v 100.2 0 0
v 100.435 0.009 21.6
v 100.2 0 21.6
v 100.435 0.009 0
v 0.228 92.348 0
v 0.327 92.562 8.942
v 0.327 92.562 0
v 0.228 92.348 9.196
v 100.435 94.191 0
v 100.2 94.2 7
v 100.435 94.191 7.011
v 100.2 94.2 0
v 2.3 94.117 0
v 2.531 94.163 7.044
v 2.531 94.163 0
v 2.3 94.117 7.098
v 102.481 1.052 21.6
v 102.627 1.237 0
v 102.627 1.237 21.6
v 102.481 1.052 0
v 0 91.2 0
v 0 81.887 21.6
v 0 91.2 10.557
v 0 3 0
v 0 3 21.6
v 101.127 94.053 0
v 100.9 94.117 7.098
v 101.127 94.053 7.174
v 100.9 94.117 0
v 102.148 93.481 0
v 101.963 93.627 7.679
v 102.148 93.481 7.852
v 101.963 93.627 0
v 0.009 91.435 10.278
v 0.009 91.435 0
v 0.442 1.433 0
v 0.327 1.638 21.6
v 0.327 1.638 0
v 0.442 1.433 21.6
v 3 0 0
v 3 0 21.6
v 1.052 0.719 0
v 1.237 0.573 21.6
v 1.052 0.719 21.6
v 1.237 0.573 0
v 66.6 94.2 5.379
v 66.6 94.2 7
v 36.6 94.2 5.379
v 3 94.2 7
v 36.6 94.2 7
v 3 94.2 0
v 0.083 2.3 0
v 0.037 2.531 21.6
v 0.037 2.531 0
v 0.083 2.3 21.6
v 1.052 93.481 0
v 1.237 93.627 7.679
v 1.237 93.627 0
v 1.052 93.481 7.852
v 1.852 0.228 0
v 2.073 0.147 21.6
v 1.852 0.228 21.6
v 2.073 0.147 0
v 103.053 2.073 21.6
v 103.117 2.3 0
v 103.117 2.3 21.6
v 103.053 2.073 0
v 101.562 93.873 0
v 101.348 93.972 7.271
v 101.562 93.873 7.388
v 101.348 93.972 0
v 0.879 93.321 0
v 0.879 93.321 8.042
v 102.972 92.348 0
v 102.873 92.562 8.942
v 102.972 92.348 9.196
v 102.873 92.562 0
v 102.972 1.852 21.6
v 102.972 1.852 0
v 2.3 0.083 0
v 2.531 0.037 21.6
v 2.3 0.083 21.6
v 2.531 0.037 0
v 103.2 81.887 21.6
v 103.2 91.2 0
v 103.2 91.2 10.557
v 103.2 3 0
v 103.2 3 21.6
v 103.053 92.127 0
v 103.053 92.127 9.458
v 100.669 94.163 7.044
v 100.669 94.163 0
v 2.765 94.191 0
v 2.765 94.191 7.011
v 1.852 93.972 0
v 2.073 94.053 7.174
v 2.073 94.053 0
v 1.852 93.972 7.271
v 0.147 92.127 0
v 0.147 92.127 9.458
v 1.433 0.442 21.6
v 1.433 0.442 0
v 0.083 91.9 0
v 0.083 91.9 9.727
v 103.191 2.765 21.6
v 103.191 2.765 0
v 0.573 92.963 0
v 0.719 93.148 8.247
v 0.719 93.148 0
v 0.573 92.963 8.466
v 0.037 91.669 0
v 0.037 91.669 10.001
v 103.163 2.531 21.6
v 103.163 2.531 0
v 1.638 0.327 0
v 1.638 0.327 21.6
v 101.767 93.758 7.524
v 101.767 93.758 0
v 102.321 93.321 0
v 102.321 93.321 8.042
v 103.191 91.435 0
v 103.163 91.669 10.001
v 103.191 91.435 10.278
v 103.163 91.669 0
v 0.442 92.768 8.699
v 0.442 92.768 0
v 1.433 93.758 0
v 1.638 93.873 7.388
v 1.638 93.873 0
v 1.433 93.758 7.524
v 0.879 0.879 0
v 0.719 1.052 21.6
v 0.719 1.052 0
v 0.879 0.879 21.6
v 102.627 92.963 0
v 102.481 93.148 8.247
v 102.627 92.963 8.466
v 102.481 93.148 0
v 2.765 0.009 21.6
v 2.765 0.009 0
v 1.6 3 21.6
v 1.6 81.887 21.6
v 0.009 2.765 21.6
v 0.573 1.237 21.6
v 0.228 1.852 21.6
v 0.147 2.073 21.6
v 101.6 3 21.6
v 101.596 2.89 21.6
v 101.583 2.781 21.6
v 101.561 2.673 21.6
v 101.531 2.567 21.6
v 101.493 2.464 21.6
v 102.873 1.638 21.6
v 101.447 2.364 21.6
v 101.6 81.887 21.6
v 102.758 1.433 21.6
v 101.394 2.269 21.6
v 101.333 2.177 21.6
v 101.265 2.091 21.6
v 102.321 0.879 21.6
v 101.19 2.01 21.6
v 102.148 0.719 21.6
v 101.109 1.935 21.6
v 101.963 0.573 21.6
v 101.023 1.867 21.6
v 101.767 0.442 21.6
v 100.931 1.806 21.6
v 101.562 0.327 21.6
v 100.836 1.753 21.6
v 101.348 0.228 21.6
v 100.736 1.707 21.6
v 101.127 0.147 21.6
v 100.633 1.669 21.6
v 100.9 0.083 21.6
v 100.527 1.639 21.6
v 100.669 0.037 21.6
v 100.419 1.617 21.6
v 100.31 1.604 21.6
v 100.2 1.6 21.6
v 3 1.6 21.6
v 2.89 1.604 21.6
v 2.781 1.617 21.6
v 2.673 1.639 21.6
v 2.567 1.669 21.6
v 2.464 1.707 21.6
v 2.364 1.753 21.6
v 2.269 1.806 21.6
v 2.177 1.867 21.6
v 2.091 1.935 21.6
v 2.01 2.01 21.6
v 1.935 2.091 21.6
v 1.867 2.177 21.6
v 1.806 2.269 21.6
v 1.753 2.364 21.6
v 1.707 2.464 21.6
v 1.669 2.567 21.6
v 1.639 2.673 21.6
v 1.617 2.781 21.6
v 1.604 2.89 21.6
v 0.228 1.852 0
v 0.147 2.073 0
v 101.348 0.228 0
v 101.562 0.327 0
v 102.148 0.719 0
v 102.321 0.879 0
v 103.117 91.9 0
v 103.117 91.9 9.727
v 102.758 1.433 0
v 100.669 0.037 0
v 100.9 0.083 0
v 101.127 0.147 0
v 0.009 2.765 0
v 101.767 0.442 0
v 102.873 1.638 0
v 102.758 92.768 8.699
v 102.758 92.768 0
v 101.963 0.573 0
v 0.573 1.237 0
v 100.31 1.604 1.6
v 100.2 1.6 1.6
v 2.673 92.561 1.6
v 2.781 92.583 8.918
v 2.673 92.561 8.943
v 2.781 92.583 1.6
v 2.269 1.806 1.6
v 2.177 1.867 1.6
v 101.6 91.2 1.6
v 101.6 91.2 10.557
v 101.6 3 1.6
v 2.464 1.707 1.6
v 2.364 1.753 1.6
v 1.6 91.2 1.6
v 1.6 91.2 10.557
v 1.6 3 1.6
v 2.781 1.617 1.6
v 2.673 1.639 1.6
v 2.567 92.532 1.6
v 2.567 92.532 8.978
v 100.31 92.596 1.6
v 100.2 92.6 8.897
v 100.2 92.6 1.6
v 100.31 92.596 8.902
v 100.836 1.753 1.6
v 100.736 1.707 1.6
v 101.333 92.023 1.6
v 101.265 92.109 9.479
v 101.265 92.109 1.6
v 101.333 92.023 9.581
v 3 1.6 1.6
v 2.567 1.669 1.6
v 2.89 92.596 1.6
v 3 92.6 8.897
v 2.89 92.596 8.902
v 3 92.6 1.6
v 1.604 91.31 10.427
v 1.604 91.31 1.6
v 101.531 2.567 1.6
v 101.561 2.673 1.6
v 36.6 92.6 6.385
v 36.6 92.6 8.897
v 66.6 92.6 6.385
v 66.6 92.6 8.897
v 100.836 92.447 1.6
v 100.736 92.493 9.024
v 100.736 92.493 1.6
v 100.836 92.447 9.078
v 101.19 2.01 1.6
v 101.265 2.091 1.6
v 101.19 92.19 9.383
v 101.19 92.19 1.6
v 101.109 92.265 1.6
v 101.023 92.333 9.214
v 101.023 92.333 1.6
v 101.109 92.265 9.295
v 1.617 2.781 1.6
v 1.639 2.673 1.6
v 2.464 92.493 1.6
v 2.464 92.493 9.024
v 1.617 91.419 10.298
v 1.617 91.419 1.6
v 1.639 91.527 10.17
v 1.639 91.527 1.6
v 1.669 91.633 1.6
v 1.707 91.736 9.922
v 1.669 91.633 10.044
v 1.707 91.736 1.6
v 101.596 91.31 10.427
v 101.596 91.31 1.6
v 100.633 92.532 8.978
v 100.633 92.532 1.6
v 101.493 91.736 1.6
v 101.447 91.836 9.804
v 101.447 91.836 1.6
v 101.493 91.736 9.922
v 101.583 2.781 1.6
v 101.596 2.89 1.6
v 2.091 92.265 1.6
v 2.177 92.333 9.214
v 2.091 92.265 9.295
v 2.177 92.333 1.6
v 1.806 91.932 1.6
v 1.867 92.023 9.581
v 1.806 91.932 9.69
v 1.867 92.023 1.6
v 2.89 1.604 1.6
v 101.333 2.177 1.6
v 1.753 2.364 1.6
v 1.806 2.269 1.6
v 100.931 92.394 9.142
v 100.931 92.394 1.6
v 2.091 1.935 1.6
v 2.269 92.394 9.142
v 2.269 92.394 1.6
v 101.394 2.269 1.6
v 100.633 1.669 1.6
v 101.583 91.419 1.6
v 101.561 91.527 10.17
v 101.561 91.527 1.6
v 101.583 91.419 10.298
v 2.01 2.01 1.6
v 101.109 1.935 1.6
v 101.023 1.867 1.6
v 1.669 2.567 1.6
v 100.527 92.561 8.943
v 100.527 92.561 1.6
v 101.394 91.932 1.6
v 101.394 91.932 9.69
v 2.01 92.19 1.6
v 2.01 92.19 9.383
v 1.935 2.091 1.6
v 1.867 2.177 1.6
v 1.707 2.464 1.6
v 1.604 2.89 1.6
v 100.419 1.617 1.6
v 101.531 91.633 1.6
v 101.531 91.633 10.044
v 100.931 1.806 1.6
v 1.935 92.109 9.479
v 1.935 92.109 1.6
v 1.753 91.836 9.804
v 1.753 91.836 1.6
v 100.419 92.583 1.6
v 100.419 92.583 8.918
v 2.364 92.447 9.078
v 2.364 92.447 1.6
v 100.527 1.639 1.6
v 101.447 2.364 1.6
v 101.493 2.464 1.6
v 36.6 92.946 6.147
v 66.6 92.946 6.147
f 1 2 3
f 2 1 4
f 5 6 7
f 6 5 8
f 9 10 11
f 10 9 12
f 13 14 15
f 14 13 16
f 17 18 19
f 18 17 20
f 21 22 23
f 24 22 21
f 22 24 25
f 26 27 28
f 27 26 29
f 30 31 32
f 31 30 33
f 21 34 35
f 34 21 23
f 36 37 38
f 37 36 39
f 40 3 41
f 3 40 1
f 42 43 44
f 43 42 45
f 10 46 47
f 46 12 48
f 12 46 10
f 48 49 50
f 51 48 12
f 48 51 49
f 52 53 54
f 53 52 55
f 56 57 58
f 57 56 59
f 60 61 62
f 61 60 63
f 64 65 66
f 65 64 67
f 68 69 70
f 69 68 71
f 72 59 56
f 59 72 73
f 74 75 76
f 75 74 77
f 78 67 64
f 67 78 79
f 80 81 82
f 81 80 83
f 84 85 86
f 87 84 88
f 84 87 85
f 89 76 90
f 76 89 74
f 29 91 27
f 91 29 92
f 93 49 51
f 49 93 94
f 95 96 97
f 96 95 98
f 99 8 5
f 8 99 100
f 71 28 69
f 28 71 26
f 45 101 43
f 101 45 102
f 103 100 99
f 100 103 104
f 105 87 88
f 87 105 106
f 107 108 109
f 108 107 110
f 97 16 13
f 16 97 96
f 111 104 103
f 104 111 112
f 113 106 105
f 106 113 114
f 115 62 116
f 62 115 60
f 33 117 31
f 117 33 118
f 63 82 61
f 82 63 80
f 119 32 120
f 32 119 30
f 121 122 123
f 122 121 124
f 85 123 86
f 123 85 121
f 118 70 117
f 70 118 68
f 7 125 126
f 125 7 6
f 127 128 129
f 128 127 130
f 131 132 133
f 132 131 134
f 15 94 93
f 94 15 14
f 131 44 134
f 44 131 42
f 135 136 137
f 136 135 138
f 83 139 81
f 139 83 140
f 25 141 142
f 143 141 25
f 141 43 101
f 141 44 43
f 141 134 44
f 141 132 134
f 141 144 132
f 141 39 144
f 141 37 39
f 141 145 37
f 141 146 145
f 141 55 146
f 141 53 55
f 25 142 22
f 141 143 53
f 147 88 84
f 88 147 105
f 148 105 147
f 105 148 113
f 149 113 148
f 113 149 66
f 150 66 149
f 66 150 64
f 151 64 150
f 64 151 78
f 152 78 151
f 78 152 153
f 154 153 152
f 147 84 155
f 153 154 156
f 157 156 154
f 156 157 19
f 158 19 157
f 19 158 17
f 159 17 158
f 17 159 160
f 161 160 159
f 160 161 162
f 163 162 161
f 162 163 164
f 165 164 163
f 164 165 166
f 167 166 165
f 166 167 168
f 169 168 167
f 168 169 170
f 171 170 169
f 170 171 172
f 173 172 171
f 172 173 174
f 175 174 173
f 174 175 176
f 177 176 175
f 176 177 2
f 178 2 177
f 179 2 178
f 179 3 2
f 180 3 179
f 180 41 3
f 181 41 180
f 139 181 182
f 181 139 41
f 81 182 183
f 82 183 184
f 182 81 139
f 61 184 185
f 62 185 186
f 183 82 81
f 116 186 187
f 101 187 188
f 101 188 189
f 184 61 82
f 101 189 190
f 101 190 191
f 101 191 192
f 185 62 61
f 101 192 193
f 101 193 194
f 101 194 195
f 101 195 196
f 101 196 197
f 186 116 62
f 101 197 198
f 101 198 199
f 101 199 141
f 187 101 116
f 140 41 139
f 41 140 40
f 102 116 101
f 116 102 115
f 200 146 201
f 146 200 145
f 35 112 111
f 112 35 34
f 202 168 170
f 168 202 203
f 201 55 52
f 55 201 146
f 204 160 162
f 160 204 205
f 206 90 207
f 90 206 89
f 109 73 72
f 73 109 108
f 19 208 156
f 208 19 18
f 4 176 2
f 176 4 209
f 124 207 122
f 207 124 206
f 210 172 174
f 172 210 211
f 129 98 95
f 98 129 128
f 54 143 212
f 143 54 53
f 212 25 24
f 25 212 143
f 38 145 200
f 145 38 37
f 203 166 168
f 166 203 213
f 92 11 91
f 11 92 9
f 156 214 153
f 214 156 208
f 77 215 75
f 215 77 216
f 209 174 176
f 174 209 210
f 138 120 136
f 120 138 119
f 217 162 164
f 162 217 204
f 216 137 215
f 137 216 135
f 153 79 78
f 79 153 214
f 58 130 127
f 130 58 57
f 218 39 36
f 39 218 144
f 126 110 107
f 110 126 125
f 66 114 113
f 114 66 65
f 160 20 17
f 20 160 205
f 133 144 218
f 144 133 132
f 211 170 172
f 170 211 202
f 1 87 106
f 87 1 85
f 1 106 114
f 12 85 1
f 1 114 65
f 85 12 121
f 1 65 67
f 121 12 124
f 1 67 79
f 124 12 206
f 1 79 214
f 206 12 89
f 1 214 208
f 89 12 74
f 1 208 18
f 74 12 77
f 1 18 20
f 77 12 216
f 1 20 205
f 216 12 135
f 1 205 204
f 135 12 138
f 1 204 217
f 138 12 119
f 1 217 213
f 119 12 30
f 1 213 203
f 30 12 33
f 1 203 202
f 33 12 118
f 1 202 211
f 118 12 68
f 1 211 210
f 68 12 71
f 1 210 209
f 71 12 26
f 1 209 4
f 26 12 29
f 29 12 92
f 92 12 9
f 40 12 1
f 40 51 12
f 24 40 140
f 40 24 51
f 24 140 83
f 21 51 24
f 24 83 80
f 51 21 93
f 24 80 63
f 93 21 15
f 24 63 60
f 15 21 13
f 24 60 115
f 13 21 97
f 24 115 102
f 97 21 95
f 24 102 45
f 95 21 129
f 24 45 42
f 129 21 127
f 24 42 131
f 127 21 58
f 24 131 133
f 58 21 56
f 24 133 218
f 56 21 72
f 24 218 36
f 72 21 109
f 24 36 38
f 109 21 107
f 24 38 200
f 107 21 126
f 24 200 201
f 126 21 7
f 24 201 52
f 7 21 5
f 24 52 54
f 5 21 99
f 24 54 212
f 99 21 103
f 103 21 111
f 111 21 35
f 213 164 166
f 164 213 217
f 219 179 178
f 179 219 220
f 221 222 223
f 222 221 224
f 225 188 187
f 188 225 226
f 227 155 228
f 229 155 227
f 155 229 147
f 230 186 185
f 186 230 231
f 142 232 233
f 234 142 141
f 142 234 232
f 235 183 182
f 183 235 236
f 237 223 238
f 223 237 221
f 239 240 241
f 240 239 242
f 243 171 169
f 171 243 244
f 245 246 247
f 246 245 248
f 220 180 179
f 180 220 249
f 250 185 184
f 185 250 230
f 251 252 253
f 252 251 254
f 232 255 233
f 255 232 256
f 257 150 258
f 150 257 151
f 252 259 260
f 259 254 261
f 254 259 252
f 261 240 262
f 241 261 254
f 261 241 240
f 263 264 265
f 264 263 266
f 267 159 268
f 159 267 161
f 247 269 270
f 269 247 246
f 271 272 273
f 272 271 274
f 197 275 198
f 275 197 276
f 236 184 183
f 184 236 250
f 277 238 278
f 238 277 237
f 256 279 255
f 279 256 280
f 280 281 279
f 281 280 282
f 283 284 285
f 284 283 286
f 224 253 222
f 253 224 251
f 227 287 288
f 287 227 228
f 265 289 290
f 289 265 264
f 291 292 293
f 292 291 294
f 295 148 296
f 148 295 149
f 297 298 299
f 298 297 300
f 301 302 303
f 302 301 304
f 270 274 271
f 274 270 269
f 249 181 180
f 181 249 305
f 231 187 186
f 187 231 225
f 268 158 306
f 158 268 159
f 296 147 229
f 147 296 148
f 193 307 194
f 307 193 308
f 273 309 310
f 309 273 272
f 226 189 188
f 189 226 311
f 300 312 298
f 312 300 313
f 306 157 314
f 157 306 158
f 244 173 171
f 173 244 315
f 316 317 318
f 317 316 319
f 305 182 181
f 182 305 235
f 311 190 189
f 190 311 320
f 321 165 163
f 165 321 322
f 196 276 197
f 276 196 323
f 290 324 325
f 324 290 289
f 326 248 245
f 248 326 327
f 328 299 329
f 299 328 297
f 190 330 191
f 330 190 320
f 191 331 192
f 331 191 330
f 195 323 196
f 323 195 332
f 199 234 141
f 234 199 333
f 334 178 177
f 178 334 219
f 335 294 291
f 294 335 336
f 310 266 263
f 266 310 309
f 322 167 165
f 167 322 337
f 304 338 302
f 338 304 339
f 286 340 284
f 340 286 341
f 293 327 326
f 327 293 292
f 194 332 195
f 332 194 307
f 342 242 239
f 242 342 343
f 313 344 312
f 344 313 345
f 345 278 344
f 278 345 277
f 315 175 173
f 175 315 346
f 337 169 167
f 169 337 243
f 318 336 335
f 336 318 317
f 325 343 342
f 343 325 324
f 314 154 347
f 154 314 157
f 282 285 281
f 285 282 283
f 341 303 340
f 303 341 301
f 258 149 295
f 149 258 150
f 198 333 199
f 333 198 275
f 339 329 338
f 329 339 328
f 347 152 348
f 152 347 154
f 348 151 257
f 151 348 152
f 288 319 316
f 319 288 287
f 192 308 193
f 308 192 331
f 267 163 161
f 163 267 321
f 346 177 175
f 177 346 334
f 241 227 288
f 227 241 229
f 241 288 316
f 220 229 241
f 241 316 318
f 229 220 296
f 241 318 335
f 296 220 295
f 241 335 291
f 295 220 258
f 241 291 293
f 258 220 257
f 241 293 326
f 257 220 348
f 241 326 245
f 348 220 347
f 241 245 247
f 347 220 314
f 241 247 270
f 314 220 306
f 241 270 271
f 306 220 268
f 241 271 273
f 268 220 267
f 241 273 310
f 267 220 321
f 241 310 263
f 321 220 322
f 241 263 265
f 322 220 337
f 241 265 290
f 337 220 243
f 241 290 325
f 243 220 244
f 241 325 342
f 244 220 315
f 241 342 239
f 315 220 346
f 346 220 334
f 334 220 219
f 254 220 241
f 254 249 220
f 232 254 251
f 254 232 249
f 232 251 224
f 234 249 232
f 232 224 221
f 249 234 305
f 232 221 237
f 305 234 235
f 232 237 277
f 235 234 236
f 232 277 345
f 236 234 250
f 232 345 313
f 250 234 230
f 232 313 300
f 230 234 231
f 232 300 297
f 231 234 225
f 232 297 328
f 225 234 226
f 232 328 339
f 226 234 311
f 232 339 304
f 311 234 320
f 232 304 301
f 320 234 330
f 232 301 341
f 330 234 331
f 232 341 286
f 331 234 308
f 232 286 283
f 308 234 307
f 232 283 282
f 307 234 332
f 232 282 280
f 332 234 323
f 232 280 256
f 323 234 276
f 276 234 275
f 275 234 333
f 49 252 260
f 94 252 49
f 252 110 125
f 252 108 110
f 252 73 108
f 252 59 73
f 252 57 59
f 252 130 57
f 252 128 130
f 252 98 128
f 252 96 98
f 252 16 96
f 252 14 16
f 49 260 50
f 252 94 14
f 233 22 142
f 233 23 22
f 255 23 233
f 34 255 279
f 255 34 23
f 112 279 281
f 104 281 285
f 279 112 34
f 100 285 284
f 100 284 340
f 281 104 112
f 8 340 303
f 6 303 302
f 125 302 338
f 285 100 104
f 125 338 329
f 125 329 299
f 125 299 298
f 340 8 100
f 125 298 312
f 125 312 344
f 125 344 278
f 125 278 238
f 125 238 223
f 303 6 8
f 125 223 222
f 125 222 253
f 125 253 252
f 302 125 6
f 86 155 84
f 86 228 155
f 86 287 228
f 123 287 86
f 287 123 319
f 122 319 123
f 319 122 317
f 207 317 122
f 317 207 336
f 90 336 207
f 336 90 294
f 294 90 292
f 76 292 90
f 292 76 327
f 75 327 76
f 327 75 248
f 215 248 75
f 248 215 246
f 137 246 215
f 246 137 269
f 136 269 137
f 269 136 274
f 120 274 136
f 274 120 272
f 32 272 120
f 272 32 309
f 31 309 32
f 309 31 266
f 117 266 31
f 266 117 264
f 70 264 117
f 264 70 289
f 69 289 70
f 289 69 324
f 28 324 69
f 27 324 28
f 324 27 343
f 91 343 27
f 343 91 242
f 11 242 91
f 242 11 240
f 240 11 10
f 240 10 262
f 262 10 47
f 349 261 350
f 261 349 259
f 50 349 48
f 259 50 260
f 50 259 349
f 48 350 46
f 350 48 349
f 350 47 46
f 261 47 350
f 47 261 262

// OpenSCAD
// file: common.scad
// Common FDM helper modules
// Include fdm-pla.scad before using these.

include <fdm-pla.scad>

// A hole compensated for FDM shrinkage.
// d = nominal diameter, h = depth, center = center vertically
module fdm_hole(d, h, center=false) {
  cylinder(d=d + FDM_HOLE_COMPENSATION, h=h, center=center, $fn=max(32, ceil(d*4)));
}

// A shaft/pin sized for press fit into a compensated hole.
// d = nominal diameter, h = height
module fdm_shaft(d, h, center=false) {
  cylinder(d=d + FDM_PRESS_FIT * 2, h=h, center=center, $fn=max(32, ceil(d*4)));
}

// Bolt pattern — places children at evenly spaced points on a circle.
// n = number of bolts, r = bolt circle radius
module bolt_pattern(n, r) {
  for (i = [0 : n-1]) {
    angle = i * 360 / n;
    translate([r * cos(angle), r * sin(angle), 0])
      children();
  }
}

// Cylinder with a 45° chamfer on the bottom edge.
// d = diameter, h = height, chamfer = chamfer size
module chamfer_cylinder(d, h, chamfer=0.5) {
  union() {
    // Main body above chamfer
    translate([0, 0, chamfer])
      cylinder(d=d, h=h - chamfer, $fn=max(32, ceil(d*4)));
    // Chamfer cone
    cylinder(d1=d - chamfer*2, d2=d, h=chamfer, $fn=max(32, ceil(d*4)));
  }
}
// file: bambu-x1c.scad
// Bambu Lab X1 Carbon — build volume and dimension reporting

BED_X = 256;
BED_Y = 256;
BED_Z = 256;

// Assert a part fits within the build volume.
// Call with the bounding box dimensions of your part.
module assert_fits(x, y, z) {
  assert(x <= BED_X, str("Part X (", x, "mm) exceeds bed X (", BED_X, "mm)"));
  assert(y <= BED_Y, str("Part Y (", y, "mm) exceeds bed Y (", BED_Y, "mm)"));
  assert(z <= BED_Z, str("Part Z (", z, "mm) exceeds bed Z (", BED_Z, "mm)"));
}

// Echo dimensions in a parseable format for the Node.js pipeline.
// Call at the end of your .scad file with the part's bounding box.
module report_dimensions(x, y, z, label="part") {
  assert_fits(x, y, z);
  echo(str("DIMENSION:", label, ":x=", x));
  echo(str("DIMENSION:", label, ":y=", y));
  echo(str("DIMENSION:", label, ":z=", z));
}
// file: fdm-pla.scad
// FDM PLA Tolerance Constants
// Use these in all designs to ensure proper fit on the Bambu X1C.

// Fit offsets (applied to radius or per-side dimension)
FDM_PRESS_FIT     = -0.15;  // Friction-held joints
FDM_CLEARANCE_FIT =  0.25;  // Easy insert/remove
FDM_SLIDING_FIT   =  0.35;  // Moving parts

// Hole compensation (applied to diameter)
FDM_HOLE_COMPENSATION = 0.4;

// Structural minimums
MIN_WALL = 1.2;       // 3 perimeters at 0.4mm nozzle
MIN_FLOOR_CEIL = 0.8; // 4 layers at 0.2mm

// Overhang and bridging limits
MAX_OVERHANG_ANGLE = 45;  // degrees from vertical
MAX_BRIDGE_SPAN    = 10;  // mm unsupported horizontal span

// Layer and nozzle
NOZZLE_DIA   = 0.4;
LAYER_HEIGHT = 0.2;
// main file
// P-touch Catch Tray — removable kanban bin (round 2)
// Slides into the cradle's forward tray slot; catches auto-cut labels.
//
// Round 1 critique changes:
//   - Owl face DELETED from tray +Y wall (eyes, pupils, beak gone).
//     Motif consolidated onto the cradle back panel per id/brief.md.
//   - 45° scoop lip RESTORED across the upper 14mm of the 21.6mm front wall.
//   - Separate top-edge grip scallop NOT restored. Instead, an integrated
//     concave finger-grip is carved into the center of the scoop face
//     (30mm wide × 2.5mm deep). Grip + scoop are one feature, not two.
//
// Coordinate system:
//   Origin at back-left corner of tray floor bottom (exterior).
//   +X = right, +Y = forward (user-front), +Z = up.
//   Front wall exterior face at Y = ext_d (user-facing scoop).

include <fdm-pla.scad>
include <bambu-x1c.scad>
include <common.scad>

$fn = 80;

// ===== Parameters =====
int_w     = 100;    // interior width (X)
int_d     = 91;     // interior depth (Y)
int_h     = 20;     // interior height (Z)
wall_t    = 1.6;
floor_t   = 1.6;

ext_w     = int_w + 2*wall_t;     // 103.2
ext_d     = int_d + 2*wall_t;     // 94.2
ext_h     = int_h + floor_t;      // 21.6

fillet_vert_r = 3.0;   // tray exterior vertical edge fillets

// Scoop lip geometry (integrated with finger-grip)
scoop_base_h   = 7;     // lower 7mm of front wall stays vertical (structural)
scoop_h        = 14;    // upper 14mm tilts back at 45° (7 + 14 = 21.6)
scoop_angle    = 45;    // degrees from horizontal
// 45° from horizontal means the scoop face recedes 14mm in -Y between z=7 and z=21.6

// Integrated finger-grip dip in the center of the scoop
grip_w         = 30;    // width across the scoop face (X)
grip_depth     = 2.5;   // additional material removed at center of scoop
// Leading edge fillet
scoop_leading_edge_r = 2;

// ===== Structural asserts =====
assert(wall_t >= MIN_WALL, str("Tray wall ", wall_t, " below min ", MIN_WALL));
assert(floor_t >= MIN_FLOOR_CEIL, str("Tray floor ", floor_t, " below min floor"));
assert(ext_w <= 256 && ext_d <= 256 && ext_h <= 256, "Tray exceeds bed");
assert(scoop_base_h + scoop_h <= ext_h + 0.001, "Scoop geometry overshoots wall height");

// ===== 2D helpers =====

module rounded_rect(w, d, r) {
    translate([r, r])
        offset(r=r) square([w - 2*r, d - 2*r]);
}

// ===== Modules =====

// Tray shell: rectangular bin open on top, with 45° scoop on the upper portion
// of its +Y (user-front) face, and an integrated concave finger-grip dip in the
// center of the scoop. Back wall (-Y), left and right walls are full-height
// vertical. Front wall lower 7mm is vertical; upper 14mm is the scoop.
module tray_shell() {
    difference() {
        // Outer body: full rounded-rect shell at full height
        linear_extrude(height = ext_h)
            rounded_rect(ext_w, ext_d, fillet_vert_r);
        // Interior: remove the bin cavity
        int_r = max(fillet_vert_r - wall_t, 0.8);
        translate([wall_t, wall_t, floor_t])
            linear_extrude(height = int_h + 0.1)
                rounded_rect(int_w, int_d, int_r);
        // Scoop cutter: removes the upper 14mm of the front wall by slicing it
        // at 45° from horizontal. The cutter is a triangular prism in Y-Z
        // spanning the full tray width in X, placed at the front wall.
        scoop_cutter();
        // Integrated finger-grip dip: a concave trough carved into the scoop
        // face in the central 30mm of the tray width.
        finger_grip_cutter();
    }
}

// Scoop cutter: a wedge-shaped void that removes the top-outer portion of the
// front wall to create a 45° sloped face. Positioned so the lower 7mm of the
// front wall is untouched, the upper 14mm slopes back into the tray at 45°.
// The cut runs the full tray width in X (plus slop for clean boolean).
module scoop_cutter() {
    // Triangular profile in Y-Z:
    //   vertex A: (ext_d,         scoop_base_h)               -- bottom of scoop face, at outer wall
    //   vertex B: (ext_d + 2,     ext_h + 2)                  -- outside & above top (slop)
    //   vertex C: (ext_d - scoop_h, ext_h + 2)                -- inside start of cut at top (=ext_d-14)
    // All extruded in X across the full tray width plus slop.
    translate([-2, 0, 0])
        rotate([90, 0, 90])
            linear_extrude(height = ext_w + 4)
                polygon(points = [
                    [ext_d,                 scoop_base_h],
                    [ext_d + 2,             ext_h + 2],
                    [ext_d - scoop_h,       ext_h + 2],
                ]);
}

// Integrated finger-grip: a concave (cylindrical) dip carved into the scoop
// face in the central 30mm of the tray width. Depth 2.5mm perpendicular to
// the scoop face. Implementation: a cylinder whose axis is perpendicular to
// the scoop face, carving inward.
module finger_grip_cutter() {
    // Scoop face mid-point (in Y-Z plane):
    //   bottom of scoop at (Y=ext_d, Z=scoop_base_h)
    //   top of scoop at (Y=ext_d - scoop_h, Z=scoop_base_h + scoop_h) = (Y=ext_d-14, Z=21.6)
    //   midpoint = (Y=ext_d - scoop_h/2, Z=scoop_base_h + scoop_h/2) = (Y=ext_d-7, Z=14)
    // Face normal (outward): (sin45°, sin45°) = (0.707, 0.707) in Y-Z
    //
    // Carve a cylinder aligned with X-axis, positioned just outside the face
    // so its inner surface dips 2.5mm into the scoop face.
    // Cylinder radius chosen so its arc intersects the scoop face cleanly.
    // A radius of ~50mm gives a shallow concave arc (3mm depth across 30mm
    // chord: R ≈ (15² + 3²)/(2·3) = 39, use 50 for safety).
    //
    // We want chord = 30mm on the face, dip depth = 2.5mm.
    // R = (chord/2)² + depth²) / (2·depth) = (15² + 2.5²) / (2·2.5)
    //   = (225 + 6.25) / 5 = 46.25mm
    R = 46.25;
    // Midpoint of scoop face (Y, Z)
    mid_y = ext_d - scoop_h/2;    // ext_d - 7
    mid_z = scoop_base_h + scoop_h/2;  // 14
    // Outward normal direction from midpoint: (+Y, +Z) normalized, i.e. (0.707, 0.707)
    // Cylinder center is outside the face by (R - depth):
    offset_along_normal = R - grip_depth;
    cx_y = mid_y + offset_along_normal * cos(scoop_angle);   // +Y offset
    cx_z = mid_z + offset_along_normal * sin(scoop_angle);   // +Z offset
    // The cylinder's axis is along X. Its length must cover the grip width
    // (30mm) plus slop. Center the cylinder on the tray centerline (X = ext_w/2)
    // with length grip_w (not longer — so outside the 30mm chord the scoop is
    // untouched).
    translate([ext_w/2 - grip_w/2, cx_y, cx_z])
        rotate([0, 90, 0])
            cylinder(r = R, h = grip_w, $fn = 120);
}

// ===== Assembly =====

module tray() {
    tray_shell();
}

tray();

// ===== Dimension report =====
report_dimensions(ext_w, ext_d, ext_h, "tray");
